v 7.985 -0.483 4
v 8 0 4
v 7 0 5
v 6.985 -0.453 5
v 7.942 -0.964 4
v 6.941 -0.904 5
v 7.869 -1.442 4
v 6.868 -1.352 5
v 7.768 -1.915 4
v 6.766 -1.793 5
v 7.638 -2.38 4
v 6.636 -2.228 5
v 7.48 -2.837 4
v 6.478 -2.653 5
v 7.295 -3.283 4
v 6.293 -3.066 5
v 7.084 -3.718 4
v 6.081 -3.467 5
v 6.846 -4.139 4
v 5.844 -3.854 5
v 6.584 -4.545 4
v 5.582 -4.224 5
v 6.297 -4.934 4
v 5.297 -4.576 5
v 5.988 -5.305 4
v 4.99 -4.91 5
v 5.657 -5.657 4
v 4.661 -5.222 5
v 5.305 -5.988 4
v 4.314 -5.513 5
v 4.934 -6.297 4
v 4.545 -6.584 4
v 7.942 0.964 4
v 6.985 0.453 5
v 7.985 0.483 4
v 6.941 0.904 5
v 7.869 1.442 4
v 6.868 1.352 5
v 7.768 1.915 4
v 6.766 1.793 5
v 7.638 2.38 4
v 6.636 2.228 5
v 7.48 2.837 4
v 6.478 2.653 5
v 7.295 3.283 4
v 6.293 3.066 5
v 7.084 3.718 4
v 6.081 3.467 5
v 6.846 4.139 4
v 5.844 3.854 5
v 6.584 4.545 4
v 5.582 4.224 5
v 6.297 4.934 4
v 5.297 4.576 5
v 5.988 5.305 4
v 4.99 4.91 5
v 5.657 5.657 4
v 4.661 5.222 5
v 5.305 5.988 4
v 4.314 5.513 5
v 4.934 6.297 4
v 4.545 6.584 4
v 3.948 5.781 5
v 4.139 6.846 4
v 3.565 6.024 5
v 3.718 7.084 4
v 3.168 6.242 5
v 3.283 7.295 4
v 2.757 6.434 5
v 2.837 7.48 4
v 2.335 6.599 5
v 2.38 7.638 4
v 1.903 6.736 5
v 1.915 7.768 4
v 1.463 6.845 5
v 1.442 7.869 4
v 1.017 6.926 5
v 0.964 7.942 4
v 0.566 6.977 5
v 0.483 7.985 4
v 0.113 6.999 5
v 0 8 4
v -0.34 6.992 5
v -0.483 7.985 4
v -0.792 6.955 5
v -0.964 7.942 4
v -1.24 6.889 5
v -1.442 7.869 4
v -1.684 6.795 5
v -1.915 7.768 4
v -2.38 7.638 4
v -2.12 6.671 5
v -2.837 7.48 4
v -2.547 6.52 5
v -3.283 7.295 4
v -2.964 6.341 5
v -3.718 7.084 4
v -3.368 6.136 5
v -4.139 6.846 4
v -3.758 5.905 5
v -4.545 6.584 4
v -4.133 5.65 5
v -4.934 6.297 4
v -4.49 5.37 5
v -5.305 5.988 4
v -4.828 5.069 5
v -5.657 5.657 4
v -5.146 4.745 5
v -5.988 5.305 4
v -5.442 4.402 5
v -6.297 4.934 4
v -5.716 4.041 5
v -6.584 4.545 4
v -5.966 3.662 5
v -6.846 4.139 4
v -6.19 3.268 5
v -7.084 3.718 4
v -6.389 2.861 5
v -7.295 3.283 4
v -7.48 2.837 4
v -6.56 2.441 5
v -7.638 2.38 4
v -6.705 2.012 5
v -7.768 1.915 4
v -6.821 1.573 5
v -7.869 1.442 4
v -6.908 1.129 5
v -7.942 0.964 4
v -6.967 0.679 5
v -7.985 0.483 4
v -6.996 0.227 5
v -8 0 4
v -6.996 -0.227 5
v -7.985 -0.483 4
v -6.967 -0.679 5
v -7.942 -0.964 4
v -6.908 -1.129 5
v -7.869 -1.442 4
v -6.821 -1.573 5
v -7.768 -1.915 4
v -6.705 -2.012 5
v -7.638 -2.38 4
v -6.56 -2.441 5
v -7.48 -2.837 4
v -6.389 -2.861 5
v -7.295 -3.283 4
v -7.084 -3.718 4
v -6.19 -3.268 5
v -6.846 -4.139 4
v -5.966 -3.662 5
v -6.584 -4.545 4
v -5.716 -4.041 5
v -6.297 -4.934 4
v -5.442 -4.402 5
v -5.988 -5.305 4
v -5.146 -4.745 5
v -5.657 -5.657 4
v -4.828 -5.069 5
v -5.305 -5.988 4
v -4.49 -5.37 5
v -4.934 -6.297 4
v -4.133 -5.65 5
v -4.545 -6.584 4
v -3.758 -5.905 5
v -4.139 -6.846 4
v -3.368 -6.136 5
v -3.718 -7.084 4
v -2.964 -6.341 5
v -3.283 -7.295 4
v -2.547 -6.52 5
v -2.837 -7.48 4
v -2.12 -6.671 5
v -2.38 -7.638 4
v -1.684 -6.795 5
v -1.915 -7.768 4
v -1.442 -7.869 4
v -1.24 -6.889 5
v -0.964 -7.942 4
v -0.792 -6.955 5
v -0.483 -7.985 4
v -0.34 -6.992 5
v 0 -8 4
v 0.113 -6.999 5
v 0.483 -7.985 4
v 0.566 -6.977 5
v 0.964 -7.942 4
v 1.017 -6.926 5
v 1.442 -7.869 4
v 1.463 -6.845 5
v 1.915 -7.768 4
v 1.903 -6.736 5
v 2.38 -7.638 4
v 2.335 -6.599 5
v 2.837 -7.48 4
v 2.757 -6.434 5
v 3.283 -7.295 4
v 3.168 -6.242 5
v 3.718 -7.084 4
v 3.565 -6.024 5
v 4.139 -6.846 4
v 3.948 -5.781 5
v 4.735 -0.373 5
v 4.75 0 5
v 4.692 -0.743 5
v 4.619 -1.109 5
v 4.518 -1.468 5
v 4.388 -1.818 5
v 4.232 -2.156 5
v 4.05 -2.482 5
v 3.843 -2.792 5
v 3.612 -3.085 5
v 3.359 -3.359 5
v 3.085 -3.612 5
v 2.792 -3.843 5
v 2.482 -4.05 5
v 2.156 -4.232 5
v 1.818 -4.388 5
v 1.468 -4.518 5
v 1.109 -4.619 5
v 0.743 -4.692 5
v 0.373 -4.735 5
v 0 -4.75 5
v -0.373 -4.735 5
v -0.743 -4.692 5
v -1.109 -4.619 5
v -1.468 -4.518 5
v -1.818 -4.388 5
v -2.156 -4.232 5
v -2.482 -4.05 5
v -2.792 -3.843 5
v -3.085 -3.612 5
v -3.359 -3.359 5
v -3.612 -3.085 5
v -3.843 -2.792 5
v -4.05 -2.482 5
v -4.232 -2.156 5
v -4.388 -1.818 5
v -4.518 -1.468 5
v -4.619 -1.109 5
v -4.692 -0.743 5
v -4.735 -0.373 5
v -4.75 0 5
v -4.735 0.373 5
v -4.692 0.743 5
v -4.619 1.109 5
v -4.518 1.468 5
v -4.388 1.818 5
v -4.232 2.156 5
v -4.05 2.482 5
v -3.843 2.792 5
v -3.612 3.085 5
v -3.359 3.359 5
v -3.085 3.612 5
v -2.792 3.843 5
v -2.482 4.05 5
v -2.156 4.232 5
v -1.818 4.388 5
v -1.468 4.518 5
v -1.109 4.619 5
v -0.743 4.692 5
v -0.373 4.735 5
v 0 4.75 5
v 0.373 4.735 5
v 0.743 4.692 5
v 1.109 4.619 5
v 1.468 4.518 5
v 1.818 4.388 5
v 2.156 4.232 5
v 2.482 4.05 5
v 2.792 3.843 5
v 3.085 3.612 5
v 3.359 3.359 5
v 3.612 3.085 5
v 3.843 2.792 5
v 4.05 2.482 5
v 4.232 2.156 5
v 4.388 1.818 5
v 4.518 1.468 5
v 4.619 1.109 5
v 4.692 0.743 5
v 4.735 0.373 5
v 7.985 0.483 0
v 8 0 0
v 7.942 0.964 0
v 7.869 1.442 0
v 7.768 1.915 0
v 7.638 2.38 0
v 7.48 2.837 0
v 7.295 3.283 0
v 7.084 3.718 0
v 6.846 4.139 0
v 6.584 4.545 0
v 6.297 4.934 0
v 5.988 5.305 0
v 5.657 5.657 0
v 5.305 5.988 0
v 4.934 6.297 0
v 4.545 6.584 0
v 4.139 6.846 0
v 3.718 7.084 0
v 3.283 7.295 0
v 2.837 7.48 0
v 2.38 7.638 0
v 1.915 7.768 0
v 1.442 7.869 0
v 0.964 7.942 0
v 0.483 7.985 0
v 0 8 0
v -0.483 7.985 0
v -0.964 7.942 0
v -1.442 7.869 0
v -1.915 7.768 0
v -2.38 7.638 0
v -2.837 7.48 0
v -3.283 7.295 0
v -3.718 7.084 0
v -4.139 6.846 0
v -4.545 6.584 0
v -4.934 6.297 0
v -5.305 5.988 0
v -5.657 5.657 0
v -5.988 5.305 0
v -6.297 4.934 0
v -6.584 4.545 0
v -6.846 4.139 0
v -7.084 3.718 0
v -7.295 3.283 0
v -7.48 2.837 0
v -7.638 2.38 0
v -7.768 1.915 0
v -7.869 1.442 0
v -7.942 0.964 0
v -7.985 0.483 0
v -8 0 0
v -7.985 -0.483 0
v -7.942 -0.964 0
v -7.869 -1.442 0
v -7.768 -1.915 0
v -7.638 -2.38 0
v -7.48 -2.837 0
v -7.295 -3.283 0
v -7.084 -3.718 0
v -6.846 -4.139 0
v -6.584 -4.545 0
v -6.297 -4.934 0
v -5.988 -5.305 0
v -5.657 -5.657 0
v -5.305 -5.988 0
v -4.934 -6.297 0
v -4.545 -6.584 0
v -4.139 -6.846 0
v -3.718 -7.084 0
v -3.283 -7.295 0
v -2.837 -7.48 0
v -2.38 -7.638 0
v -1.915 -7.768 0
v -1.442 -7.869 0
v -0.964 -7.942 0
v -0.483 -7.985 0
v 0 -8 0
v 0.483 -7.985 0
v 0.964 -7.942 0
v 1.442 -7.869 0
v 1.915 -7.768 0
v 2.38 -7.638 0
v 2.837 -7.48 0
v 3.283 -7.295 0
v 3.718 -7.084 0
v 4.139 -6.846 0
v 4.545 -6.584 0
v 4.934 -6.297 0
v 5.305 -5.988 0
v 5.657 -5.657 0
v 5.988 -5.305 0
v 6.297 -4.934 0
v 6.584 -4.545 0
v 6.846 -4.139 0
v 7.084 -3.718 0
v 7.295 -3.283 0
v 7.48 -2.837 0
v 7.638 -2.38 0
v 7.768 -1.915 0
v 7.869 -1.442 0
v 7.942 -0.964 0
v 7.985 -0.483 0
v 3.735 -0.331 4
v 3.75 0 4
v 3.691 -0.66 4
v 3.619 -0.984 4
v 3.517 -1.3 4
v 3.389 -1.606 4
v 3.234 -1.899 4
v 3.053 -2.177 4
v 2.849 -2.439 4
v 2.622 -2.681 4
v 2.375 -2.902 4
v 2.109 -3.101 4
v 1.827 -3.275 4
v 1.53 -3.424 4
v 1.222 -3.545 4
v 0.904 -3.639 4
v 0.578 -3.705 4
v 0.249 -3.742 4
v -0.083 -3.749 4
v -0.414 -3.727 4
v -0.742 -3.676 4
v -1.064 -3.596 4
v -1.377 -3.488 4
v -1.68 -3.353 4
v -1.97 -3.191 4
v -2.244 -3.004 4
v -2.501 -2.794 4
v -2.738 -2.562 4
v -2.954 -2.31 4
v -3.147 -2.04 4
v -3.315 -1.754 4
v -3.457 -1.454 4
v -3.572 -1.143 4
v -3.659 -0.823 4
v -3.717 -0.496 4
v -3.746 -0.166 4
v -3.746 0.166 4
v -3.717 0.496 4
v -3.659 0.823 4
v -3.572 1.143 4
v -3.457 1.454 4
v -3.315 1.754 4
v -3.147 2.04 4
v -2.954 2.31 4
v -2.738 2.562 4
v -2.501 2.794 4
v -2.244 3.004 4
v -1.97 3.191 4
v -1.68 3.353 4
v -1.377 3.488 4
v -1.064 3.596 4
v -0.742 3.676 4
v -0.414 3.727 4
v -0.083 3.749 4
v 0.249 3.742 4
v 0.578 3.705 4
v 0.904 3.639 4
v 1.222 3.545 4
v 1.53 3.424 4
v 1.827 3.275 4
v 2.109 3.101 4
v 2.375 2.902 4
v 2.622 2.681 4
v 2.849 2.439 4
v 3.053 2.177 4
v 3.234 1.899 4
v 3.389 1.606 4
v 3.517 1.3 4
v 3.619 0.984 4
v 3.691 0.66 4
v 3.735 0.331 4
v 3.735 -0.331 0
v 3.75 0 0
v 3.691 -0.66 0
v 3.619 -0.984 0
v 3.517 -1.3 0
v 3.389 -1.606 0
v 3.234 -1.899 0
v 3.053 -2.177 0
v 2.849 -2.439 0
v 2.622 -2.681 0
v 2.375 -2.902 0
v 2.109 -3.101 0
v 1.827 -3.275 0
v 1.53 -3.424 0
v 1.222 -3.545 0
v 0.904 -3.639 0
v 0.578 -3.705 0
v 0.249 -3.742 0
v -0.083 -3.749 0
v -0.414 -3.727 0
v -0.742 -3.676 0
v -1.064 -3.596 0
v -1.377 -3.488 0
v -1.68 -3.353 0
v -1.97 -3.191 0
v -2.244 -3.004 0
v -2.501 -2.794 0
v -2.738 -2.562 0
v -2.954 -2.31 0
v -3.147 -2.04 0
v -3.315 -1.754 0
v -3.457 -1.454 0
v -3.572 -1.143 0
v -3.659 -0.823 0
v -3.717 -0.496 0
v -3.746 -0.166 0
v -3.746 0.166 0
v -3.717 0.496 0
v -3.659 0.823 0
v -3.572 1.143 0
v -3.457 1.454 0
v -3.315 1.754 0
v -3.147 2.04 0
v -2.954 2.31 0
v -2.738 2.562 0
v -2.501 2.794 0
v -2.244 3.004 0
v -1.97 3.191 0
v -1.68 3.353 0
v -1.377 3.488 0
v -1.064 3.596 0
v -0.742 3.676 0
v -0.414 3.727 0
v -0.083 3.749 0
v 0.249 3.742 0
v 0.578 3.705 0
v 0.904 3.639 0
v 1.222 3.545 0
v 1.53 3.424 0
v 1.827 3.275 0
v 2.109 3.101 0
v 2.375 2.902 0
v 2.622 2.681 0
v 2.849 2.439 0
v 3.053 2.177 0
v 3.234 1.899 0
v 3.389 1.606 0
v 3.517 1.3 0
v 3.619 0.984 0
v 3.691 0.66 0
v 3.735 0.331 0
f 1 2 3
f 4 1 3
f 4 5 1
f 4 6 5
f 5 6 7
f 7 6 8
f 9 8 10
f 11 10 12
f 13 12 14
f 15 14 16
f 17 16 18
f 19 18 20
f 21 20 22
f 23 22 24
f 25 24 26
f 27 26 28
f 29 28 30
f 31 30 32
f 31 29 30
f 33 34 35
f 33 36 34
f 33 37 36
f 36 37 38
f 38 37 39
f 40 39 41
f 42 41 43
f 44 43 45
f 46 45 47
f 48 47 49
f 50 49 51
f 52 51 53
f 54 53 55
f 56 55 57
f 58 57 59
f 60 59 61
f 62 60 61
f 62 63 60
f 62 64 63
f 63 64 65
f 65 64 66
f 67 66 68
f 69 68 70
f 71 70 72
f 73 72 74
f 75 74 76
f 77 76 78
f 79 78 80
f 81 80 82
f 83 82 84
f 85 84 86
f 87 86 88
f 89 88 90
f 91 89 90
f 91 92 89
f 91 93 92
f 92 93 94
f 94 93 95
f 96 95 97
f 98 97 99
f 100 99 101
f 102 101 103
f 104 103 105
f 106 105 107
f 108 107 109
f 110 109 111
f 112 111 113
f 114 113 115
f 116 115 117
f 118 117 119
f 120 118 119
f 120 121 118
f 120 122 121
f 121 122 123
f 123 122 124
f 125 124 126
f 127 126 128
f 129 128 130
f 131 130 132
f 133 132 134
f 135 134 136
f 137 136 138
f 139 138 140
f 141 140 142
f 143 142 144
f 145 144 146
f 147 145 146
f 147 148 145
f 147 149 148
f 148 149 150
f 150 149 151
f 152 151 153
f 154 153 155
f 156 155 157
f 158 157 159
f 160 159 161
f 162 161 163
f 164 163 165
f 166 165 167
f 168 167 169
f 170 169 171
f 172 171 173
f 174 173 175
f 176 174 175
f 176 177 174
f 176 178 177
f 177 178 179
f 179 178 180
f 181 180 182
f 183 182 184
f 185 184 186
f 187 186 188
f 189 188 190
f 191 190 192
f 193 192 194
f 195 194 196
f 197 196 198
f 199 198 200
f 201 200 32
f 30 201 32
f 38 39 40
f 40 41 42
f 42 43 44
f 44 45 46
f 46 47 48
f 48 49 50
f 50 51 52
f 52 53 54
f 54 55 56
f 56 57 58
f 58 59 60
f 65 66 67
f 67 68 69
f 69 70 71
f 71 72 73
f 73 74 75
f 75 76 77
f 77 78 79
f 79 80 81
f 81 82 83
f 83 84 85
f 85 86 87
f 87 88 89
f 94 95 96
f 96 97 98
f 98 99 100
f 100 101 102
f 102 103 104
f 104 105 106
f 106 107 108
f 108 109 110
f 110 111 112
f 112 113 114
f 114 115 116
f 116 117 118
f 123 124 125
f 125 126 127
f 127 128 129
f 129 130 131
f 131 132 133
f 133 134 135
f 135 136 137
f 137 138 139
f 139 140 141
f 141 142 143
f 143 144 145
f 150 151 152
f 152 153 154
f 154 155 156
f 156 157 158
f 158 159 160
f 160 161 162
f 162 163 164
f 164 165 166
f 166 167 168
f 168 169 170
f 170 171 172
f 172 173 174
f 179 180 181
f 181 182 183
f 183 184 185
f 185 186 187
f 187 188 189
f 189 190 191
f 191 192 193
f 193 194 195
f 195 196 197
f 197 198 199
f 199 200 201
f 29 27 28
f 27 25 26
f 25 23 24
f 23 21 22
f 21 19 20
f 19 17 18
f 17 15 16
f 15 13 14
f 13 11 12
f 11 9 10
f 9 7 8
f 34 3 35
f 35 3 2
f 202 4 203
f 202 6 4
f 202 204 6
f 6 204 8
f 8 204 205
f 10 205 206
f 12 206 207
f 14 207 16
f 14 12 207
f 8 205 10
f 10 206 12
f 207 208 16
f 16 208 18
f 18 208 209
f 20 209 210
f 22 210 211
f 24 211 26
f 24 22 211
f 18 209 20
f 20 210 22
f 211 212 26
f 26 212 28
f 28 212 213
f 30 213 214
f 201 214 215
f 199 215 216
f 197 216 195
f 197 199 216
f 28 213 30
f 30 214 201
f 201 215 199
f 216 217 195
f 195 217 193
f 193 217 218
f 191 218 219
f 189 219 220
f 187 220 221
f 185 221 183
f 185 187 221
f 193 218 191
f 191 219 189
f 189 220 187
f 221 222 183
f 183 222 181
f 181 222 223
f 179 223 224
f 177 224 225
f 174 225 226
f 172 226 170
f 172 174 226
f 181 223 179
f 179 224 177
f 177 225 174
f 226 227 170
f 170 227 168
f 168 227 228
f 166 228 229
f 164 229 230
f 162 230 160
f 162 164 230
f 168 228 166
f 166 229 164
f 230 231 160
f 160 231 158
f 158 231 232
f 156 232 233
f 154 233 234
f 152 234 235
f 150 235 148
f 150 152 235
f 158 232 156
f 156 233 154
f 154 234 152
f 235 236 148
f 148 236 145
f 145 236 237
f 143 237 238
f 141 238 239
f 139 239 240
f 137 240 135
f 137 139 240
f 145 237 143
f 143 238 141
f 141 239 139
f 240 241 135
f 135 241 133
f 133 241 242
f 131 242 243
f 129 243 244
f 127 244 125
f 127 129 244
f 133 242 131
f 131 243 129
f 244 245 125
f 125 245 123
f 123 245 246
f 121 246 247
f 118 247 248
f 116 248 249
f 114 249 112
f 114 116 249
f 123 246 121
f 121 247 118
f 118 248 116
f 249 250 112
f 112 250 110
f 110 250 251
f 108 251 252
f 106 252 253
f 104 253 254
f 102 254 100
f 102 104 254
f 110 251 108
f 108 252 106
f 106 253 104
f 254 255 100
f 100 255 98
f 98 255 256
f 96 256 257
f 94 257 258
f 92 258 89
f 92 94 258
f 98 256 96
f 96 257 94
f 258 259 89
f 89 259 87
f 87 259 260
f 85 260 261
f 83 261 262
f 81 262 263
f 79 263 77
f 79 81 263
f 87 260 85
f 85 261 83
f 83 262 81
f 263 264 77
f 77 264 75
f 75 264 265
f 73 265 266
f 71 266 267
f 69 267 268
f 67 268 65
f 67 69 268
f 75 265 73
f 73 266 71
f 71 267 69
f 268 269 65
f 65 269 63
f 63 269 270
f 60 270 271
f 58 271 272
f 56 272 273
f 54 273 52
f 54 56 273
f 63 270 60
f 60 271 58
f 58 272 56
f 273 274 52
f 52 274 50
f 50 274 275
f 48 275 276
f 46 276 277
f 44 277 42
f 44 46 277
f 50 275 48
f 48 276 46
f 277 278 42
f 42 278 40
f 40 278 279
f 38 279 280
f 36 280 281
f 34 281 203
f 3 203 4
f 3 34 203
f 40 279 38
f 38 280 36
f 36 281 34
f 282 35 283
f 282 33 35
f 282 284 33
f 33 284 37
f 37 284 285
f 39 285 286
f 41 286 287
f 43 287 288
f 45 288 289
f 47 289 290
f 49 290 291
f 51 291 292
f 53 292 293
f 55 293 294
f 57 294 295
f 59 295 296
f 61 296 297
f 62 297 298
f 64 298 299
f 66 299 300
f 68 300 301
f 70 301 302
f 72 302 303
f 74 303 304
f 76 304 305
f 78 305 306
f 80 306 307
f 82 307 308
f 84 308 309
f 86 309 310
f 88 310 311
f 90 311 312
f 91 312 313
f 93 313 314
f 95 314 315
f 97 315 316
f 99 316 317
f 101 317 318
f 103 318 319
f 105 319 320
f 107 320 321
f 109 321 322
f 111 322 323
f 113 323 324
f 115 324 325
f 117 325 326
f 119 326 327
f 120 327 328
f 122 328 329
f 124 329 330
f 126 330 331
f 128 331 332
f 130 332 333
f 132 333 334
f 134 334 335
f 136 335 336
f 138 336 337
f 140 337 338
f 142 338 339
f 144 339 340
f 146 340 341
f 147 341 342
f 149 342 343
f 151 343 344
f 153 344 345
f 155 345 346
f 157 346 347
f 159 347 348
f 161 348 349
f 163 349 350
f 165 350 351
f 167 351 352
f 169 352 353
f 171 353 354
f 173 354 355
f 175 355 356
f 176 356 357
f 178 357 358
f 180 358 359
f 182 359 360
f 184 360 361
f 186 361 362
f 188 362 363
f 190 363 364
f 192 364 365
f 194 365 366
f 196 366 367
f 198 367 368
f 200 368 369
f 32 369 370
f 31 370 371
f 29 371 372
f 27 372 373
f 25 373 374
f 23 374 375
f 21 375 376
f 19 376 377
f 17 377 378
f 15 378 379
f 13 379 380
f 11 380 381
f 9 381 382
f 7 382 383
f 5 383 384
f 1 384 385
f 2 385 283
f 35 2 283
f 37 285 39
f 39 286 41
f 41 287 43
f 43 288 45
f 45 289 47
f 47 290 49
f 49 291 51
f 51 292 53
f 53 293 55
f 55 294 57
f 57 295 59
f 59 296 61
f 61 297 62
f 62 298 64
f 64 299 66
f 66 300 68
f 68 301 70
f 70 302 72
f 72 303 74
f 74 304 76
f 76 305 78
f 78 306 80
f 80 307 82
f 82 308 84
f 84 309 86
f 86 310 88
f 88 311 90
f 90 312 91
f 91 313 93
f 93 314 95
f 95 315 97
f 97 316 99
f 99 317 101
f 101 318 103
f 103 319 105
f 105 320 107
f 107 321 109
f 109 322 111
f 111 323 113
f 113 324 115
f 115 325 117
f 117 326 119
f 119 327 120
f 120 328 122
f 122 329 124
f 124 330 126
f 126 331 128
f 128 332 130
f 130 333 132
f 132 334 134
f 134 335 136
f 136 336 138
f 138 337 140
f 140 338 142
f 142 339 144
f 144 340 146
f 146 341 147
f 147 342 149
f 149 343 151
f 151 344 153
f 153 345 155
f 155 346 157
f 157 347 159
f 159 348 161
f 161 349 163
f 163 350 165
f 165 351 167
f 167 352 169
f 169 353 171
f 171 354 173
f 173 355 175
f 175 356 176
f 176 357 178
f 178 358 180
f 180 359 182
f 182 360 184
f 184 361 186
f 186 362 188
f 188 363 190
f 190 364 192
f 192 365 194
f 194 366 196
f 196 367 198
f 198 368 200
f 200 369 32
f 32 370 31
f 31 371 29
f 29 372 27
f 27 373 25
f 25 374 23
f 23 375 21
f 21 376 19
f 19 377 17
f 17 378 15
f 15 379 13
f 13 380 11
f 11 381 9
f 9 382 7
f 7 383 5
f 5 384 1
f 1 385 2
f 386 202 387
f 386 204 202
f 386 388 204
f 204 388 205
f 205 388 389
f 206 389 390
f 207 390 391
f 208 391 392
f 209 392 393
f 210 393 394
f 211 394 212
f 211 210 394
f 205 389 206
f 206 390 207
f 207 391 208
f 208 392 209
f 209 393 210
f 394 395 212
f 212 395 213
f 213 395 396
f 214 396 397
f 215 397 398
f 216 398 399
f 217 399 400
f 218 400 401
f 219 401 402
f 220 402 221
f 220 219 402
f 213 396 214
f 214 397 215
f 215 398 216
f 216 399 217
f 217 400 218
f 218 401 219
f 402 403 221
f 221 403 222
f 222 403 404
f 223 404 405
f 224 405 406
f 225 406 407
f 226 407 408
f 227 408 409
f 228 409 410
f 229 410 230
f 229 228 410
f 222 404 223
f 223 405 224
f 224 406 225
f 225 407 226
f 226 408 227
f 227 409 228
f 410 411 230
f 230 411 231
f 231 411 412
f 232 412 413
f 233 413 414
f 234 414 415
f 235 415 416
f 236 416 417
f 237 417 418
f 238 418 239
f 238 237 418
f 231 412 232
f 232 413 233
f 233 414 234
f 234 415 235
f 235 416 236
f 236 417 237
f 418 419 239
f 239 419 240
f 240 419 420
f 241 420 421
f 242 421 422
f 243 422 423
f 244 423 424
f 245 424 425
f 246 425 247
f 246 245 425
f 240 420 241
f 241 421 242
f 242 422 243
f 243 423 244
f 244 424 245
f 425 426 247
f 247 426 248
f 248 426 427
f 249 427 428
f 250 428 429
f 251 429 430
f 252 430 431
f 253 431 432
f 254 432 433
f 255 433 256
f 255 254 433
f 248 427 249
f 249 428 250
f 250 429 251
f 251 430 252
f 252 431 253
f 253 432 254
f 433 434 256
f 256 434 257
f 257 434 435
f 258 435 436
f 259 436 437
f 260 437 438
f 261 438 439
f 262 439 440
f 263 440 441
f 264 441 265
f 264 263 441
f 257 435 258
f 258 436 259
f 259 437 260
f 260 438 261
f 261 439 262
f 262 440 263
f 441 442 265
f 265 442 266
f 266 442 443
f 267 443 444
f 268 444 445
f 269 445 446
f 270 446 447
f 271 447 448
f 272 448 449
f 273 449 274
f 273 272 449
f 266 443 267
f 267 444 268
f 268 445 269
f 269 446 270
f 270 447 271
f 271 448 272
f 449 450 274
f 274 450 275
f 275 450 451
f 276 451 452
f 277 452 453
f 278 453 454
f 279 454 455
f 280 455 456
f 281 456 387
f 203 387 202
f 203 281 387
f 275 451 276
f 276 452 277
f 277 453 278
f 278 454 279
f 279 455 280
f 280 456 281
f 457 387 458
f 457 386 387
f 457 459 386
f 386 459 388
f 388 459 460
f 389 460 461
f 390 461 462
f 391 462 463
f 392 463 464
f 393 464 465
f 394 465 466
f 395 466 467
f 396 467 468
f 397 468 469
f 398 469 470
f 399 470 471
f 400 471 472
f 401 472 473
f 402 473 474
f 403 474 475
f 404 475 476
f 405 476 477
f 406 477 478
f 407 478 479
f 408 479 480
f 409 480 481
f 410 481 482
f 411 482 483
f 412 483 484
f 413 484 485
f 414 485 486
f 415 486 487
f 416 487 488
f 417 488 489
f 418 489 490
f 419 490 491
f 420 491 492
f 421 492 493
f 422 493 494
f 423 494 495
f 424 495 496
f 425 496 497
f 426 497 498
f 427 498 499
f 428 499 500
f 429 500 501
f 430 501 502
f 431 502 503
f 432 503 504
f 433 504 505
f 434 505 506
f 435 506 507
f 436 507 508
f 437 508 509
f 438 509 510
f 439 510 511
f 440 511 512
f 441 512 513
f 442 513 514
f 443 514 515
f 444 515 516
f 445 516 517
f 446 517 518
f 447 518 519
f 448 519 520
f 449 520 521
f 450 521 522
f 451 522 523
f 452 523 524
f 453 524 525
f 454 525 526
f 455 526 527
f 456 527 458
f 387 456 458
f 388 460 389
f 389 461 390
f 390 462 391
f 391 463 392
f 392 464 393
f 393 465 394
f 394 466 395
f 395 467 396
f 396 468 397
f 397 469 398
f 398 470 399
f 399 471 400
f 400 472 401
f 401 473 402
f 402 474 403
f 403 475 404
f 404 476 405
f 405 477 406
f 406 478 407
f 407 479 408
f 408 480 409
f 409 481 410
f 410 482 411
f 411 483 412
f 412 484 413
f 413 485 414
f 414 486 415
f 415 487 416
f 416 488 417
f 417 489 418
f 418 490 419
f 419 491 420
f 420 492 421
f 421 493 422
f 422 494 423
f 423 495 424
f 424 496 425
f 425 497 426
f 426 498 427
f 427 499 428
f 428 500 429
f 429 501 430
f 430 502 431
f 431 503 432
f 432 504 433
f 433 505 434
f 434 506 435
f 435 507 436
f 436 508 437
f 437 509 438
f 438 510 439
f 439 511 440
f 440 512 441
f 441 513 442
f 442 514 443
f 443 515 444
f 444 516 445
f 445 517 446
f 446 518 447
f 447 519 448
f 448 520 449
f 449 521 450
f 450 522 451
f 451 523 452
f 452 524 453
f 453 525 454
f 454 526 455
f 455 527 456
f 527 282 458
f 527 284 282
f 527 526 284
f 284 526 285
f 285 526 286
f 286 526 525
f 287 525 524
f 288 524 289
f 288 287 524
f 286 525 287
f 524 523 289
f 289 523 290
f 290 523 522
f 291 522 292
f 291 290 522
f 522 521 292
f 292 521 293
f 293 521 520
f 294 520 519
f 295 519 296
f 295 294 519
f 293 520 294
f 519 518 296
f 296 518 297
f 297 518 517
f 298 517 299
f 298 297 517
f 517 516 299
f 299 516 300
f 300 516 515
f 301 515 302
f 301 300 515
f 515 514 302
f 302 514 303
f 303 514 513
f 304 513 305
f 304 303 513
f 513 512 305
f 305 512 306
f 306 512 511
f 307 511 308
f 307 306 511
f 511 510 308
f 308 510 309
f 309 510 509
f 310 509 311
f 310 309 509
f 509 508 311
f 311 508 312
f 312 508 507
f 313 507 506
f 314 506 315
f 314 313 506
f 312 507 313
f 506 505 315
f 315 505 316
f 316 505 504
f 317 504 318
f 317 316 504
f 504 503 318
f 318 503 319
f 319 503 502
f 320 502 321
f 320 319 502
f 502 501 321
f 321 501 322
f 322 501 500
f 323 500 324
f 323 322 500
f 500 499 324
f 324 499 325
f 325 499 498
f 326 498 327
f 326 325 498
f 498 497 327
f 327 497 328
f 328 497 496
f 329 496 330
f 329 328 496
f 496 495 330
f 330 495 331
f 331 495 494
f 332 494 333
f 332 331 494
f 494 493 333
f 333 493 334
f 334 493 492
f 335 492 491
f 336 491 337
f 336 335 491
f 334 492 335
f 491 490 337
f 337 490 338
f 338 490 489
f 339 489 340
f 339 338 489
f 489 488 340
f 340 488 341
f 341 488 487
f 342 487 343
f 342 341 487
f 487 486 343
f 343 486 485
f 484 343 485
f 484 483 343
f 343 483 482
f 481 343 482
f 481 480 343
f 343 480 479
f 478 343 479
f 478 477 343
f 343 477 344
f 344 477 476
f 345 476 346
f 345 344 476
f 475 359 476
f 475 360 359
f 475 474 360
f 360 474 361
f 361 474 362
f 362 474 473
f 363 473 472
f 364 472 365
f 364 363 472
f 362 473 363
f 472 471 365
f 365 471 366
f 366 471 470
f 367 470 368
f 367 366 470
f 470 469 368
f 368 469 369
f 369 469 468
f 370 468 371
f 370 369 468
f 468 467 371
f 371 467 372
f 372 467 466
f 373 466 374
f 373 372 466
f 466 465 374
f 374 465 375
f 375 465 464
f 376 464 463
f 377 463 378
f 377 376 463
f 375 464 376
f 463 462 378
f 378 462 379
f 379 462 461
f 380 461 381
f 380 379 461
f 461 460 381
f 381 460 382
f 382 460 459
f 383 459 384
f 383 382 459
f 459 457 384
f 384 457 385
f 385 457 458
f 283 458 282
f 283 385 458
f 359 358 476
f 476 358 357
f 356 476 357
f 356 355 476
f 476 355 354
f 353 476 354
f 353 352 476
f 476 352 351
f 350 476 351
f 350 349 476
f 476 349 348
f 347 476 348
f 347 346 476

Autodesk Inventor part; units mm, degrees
ref_plane "YZ Plane" through (0, 0, 0) normal (1, 0, 0) x (0, 1, 0)
ref_plane "XZ Plane" through (0, 0, 0) normal (0, 1, 0) x (-1, 0, 0)
ref_plane "XY Plane" through (0, 0, 0) normal (0, 0, 1) x (1, 0, 0)
sketch "Sketch1" plane through (0, 0, 0) normal (0, 0, 1) x (1, 0, 0)
  circle A0 centre (0, 0) radius 8
  dimension "d0" = 16
extrude "Extrusion1" add sketch "Sketch1" along normal blind 5
sketch "Sketch2" plane through (0, 0, 5) normal (0, 0, 1) x (1, 0, 0)
  circle A0 centre (0, 0) radius 8 projected
  circle A1 centre (0, 0) radius 3.75
  dimension "d3" = 7.5
extrude "Extrusion2" cut sketch "Sketch2" against normal blind 5 contours A1
chamfer "Chamfer1" distance 1 angle 45 1 edges at (-3.75, 0, 5)
chamfer "Chamfer2" distance 1 angle 45 1 edges at (-8, 0, 5)
properties part number "SpoolHandle-stop1"
